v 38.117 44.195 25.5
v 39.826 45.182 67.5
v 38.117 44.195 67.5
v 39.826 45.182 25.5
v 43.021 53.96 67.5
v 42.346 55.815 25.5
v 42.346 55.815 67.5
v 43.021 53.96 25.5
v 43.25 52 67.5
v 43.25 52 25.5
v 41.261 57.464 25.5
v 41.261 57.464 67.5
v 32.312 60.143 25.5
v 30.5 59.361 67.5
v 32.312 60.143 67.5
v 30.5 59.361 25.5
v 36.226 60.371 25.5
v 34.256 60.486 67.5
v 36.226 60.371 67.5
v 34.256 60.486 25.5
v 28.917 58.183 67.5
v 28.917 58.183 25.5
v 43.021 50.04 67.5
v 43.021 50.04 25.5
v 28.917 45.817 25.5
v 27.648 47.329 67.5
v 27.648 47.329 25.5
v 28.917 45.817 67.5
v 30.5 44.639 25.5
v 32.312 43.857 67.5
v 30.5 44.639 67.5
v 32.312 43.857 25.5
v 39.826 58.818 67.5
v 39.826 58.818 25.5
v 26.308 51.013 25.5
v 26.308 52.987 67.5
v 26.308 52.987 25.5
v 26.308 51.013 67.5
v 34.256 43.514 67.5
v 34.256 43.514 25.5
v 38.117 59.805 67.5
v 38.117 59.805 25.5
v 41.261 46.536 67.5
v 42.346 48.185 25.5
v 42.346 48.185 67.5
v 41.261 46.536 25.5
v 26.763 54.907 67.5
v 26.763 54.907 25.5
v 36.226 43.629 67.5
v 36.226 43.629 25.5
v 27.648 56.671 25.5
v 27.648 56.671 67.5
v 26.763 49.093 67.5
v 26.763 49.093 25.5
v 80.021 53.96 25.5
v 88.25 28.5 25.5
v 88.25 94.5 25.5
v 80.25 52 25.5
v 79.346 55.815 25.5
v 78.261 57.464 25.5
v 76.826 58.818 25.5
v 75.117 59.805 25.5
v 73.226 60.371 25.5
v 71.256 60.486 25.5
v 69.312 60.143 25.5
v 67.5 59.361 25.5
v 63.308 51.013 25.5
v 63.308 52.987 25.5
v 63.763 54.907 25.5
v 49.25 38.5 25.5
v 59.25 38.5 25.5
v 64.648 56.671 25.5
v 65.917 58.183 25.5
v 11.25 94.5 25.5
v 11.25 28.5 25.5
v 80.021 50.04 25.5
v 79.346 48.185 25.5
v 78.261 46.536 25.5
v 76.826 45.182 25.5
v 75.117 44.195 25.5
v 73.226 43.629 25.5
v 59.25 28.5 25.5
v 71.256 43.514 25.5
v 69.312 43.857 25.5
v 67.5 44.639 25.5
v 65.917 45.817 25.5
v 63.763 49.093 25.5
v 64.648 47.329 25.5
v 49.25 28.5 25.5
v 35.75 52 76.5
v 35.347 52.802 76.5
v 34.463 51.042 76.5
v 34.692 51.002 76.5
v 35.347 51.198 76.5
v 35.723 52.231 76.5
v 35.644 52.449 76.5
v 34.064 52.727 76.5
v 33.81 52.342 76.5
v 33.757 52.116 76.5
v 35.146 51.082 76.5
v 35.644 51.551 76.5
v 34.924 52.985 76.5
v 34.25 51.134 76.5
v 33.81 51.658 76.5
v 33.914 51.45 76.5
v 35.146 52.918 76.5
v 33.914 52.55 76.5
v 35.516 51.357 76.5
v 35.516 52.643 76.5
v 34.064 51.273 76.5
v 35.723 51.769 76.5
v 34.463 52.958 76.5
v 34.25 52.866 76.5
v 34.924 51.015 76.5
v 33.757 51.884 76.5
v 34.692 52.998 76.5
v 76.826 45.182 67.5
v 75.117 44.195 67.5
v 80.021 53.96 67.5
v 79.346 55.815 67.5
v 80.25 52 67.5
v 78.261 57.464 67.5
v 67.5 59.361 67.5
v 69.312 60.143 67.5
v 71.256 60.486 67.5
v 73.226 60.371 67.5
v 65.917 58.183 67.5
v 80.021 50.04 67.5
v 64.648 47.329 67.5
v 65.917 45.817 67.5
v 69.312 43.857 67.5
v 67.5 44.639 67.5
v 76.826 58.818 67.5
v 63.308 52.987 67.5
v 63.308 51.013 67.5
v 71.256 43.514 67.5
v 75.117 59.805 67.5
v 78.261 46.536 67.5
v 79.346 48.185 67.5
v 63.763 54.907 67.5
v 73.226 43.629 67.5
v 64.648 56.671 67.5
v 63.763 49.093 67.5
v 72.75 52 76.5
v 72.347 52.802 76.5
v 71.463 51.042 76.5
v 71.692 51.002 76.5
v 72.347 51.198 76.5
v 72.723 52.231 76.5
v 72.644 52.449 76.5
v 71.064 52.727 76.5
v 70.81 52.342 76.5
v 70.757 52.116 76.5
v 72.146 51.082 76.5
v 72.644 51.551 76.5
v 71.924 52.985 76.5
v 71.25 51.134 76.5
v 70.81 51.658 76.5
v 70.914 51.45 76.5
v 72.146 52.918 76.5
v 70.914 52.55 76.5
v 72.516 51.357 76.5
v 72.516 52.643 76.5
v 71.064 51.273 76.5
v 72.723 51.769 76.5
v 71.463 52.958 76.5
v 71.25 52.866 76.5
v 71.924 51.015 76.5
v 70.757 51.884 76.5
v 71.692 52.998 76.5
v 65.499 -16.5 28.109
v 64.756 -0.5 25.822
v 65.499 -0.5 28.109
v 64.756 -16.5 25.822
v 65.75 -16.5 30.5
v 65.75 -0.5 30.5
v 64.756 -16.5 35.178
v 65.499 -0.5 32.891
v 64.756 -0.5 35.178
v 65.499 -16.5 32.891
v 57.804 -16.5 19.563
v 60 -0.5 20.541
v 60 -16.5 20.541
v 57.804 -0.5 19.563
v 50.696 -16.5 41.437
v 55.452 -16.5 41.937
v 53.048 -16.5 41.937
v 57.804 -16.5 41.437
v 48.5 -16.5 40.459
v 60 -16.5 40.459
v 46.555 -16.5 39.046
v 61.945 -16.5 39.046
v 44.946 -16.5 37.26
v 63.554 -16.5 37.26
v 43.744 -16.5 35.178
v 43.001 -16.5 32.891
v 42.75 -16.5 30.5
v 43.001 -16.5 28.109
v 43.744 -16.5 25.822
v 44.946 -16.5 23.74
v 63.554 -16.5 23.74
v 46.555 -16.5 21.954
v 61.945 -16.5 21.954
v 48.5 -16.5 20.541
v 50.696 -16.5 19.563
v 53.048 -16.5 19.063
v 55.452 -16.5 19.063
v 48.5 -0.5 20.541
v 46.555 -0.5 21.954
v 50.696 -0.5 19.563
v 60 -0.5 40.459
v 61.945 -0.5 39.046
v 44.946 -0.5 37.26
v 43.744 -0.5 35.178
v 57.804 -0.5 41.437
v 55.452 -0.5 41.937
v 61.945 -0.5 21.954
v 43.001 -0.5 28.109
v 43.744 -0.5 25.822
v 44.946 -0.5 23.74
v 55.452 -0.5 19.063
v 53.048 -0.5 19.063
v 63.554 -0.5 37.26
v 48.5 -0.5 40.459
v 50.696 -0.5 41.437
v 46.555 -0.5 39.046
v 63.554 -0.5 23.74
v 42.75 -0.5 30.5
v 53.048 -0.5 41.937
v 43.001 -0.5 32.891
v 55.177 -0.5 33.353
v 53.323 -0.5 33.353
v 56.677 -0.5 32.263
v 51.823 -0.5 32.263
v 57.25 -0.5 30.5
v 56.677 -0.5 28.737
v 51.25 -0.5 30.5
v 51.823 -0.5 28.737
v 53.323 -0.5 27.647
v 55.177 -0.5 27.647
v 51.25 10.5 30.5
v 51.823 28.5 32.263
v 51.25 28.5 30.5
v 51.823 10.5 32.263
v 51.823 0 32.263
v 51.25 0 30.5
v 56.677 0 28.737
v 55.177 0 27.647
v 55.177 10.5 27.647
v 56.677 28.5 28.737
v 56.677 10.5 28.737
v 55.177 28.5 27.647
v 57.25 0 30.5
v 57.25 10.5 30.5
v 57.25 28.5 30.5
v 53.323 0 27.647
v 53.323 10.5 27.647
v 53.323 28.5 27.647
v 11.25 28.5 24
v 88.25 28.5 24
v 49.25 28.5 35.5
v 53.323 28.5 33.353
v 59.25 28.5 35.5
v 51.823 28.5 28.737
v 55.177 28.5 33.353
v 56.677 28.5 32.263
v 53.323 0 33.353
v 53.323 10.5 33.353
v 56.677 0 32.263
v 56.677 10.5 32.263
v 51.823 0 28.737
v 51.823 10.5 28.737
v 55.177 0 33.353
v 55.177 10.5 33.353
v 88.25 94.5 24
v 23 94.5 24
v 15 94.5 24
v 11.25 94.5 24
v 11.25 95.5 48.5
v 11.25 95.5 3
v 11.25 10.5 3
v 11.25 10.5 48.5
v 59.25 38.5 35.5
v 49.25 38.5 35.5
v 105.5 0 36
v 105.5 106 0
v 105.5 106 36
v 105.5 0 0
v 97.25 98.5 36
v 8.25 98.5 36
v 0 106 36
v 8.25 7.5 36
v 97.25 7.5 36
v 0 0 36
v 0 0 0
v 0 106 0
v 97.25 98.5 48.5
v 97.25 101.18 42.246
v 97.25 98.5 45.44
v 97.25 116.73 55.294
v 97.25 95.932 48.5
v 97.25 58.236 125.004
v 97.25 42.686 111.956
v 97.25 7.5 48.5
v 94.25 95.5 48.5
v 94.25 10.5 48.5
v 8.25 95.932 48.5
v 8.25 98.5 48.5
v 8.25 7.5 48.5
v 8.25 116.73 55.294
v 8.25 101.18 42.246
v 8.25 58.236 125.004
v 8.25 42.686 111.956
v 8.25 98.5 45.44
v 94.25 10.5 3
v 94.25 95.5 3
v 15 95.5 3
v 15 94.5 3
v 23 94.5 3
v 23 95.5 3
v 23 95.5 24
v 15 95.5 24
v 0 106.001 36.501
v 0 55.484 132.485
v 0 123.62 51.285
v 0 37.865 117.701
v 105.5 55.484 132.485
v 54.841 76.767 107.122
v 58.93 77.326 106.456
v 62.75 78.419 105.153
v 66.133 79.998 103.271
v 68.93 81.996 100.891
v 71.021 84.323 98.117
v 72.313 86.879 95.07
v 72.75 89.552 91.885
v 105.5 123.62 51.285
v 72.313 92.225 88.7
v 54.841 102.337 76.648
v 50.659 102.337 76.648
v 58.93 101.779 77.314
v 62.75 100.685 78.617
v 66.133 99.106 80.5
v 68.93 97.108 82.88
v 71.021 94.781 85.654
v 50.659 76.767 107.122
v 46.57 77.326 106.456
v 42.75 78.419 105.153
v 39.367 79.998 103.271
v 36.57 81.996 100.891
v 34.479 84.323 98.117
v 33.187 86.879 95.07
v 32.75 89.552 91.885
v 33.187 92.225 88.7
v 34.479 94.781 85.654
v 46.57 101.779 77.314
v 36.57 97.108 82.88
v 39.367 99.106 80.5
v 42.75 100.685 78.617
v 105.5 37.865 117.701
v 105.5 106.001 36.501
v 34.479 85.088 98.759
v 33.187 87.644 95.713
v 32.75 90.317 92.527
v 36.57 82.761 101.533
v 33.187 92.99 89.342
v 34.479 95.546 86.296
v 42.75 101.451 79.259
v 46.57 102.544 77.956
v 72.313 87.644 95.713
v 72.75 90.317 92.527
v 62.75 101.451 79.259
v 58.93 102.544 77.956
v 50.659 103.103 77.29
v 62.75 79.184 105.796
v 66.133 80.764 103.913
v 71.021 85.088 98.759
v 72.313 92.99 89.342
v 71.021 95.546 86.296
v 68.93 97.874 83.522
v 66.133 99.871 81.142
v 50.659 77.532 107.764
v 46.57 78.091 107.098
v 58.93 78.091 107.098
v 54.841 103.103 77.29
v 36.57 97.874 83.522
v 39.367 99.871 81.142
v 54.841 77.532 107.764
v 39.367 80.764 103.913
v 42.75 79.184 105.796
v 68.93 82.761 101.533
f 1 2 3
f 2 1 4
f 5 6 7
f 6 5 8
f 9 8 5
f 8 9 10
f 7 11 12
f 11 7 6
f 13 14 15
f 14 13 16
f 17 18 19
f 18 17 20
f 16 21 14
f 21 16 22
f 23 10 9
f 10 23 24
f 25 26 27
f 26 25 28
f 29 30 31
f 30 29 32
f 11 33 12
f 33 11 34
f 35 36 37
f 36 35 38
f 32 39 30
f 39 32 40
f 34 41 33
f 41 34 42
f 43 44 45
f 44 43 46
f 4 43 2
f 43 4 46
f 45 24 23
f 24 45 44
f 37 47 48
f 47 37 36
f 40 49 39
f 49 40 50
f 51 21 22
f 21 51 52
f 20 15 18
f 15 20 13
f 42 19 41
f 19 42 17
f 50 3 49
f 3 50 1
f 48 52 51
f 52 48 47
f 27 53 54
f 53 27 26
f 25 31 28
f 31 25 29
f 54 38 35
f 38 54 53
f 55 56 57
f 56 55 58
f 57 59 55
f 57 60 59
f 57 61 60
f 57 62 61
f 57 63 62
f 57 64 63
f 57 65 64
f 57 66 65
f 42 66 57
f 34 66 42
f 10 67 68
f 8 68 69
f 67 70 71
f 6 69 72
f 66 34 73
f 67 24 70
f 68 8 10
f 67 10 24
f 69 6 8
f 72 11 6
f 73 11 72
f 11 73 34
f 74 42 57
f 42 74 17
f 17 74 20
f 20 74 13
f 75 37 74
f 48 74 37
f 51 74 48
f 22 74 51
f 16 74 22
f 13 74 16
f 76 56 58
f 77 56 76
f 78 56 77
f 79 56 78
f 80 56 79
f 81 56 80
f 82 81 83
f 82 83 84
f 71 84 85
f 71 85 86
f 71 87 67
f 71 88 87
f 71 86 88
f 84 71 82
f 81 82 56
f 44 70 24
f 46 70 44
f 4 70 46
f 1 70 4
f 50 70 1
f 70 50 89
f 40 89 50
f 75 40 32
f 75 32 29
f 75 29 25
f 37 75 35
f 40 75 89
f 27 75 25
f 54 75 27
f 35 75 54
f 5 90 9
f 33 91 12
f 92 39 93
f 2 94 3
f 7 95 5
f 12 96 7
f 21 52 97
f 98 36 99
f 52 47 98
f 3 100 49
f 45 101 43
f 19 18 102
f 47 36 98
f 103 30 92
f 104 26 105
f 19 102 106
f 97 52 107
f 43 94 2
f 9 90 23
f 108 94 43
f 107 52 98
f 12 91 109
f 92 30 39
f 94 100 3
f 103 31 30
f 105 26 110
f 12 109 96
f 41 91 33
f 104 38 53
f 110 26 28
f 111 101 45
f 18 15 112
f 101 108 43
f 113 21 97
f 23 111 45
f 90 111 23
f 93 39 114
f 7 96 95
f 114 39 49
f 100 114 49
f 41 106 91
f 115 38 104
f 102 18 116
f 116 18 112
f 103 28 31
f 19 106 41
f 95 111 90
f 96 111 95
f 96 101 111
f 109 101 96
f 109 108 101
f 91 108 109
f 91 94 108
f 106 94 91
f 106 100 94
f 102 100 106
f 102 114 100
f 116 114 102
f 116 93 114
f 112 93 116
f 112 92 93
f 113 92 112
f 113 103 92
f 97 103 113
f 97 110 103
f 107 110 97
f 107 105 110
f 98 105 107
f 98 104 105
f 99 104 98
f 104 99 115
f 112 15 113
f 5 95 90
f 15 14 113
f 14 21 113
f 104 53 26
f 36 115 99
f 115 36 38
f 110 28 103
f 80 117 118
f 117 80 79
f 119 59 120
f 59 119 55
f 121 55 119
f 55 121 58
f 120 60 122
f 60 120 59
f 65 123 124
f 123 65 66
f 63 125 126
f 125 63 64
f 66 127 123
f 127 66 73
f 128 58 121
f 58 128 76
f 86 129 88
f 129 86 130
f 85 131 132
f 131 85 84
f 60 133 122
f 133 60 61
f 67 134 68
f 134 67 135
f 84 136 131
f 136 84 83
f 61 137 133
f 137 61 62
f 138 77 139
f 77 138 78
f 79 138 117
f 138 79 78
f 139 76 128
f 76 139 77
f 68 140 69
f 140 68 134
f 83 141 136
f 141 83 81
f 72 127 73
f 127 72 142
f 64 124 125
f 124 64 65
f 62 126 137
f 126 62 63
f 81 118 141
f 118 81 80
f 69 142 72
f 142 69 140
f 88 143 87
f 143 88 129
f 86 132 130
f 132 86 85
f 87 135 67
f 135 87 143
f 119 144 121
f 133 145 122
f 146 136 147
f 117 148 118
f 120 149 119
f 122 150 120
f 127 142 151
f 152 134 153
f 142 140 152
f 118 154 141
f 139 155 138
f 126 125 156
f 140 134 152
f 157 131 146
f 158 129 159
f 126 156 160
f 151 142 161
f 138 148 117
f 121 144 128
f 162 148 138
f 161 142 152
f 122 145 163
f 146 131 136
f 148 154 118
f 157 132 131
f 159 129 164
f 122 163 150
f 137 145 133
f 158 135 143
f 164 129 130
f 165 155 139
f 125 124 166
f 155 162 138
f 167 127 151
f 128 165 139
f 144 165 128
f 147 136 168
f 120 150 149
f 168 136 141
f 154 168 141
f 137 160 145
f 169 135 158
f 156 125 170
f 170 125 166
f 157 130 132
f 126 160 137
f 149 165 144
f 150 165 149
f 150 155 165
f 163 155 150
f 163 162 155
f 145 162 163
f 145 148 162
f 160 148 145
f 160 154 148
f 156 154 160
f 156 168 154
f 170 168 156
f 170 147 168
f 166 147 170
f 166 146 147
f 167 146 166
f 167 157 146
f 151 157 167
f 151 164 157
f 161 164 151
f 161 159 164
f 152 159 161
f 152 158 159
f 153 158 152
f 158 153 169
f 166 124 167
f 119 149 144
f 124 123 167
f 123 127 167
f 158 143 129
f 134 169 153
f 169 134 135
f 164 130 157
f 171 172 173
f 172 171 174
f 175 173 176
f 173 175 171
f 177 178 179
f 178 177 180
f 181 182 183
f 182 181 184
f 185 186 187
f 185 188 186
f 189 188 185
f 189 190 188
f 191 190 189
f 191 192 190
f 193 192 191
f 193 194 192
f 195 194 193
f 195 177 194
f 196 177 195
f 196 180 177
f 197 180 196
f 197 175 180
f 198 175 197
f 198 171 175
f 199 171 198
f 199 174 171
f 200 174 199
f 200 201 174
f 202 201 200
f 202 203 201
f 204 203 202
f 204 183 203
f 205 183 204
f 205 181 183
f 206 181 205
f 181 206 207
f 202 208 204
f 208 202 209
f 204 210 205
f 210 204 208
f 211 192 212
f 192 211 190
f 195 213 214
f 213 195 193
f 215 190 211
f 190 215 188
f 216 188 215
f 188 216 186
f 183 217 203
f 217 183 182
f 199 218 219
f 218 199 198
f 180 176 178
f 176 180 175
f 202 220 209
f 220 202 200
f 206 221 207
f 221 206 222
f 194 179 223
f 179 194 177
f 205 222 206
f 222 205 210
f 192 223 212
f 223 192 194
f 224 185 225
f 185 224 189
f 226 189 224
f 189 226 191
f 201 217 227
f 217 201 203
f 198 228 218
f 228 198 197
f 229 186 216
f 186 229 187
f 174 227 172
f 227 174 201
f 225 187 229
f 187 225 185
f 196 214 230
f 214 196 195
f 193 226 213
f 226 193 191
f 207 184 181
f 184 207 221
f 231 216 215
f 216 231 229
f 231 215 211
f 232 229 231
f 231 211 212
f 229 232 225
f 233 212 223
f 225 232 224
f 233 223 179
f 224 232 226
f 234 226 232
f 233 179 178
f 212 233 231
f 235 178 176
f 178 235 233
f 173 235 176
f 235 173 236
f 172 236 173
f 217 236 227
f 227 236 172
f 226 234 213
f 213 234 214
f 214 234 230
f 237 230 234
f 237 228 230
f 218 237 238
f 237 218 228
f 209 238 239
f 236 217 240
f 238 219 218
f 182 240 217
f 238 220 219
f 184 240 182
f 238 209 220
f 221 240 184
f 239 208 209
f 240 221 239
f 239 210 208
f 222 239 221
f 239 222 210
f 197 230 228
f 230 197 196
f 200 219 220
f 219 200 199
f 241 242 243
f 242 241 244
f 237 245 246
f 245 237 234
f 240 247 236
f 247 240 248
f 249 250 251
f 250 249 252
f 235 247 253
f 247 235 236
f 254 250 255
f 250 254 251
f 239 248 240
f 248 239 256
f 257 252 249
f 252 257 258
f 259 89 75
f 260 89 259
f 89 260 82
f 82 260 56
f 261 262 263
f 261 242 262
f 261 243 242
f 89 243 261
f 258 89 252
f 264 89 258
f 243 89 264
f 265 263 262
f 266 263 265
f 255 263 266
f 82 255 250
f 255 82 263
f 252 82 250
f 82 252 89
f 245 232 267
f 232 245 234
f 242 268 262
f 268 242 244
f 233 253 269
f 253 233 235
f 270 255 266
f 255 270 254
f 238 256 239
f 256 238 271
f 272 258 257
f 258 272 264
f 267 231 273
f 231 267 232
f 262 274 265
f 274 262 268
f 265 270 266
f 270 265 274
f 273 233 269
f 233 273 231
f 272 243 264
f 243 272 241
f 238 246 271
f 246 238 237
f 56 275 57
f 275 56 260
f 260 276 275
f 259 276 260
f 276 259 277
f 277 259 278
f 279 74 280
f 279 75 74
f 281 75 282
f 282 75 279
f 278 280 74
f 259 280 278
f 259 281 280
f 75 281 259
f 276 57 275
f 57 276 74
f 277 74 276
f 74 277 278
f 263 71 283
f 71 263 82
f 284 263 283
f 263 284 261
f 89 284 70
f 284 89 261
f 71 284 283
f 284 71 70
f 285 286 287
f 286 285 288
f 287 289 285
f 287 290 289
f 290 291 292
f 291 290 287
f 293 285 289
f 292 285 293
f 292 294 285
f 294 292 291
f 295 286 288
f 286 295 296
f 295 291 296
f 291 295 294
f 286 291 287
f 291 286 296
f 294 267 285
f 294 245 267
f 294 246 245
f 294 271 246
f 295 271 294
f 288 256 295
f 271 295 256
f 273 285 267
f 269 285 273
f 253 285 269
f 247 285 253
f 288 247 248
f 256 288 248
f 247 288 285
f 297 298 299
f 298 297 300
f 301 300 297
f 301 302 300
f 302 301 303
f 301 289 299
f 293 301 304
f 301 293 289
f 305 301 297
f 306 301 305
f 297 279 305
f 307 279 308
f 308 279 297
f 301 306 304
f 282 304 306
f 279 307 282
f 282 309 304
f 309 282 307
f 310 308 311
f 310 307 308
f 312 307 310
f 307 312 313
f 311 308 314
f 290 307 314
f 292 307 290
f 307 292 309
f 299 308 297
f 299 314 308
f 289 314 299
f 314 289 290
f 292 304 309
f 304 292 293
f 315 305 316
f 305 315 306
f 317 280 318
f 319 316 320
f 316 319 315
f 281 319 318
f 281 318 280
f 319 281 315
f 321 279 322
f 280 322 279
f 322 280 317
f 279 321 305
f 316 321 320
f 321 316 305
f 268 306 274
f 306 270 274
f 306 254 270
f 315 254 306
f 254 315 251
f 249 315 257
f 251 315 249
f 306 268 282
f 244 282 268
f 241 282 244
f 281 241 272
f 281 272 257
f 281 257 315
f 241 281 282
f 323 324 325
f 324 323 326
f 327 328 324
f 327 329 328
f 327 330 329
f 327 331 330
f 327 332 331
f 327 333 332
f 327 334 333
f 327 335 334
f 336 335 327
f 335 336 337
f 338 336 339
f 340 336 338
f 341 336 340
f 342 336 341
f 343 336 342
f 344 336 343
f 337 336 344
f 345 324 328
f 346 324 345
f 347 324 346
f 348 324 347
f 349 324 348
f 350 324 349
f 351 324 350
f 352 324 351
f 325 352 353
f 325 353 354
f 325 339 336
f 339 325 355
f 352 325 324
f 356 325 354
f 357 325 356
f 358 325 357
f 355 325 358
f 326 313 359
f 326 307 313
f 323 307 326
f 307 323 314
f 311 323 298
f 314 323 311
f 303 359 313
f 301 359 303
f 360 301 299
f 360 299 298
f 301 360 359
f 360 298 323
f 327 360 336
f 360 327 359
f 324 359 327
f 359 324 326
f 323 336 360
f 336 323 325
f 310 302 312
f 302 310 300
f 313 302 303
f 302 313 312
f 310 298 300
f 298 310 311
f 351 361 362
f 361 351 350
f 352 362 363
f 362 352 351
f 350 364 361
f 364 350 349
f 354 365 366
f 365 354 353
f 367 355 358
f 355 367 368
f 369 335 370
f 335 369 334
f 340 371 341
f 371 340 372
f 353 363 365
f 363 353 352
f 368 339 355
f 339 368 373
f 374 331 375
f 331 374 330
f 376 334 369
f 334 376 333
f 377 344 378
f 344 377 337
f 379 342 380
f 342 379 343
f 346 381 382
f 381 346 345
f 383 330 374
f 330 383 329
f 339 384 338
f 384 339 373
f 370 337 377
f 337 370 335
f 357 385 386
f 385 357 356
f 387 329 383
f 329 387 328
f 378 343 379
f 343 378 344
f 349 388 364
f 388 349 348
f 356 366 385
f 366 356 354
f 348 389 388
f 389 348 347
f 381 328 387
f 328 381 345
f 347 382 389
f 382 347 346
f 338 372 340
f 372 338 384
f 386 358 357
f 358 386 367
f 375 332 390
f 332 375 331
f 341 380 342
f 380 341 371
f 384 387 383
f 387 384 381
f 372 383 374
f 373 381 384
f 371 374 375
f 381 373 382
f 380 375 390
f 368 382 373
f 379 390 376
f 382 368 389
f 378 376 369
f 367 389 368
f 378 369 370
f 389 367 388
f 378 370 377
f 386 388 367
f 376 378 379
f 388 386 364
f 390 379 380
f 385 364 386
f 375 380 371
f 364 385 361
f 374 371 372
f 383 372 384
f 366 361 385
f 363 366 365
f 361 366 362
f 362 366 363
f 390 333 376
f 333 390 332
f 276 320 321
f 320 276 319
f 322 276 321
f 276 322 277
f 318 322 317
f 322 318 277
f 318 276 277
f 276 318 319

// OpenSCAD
box1X=105.5;
box1Y=106;
box1Z=36;
box1BaseH=3;

box2X=89;
box2Y=91;
box2Z=45.5;

box3X=83;
box3Y=85;
box3Z=50;

lidX=box1X;
lidY=box1Y;
lidZ=23;
lidDepth=20.3;
lidStampR=20;
lidHingeAngle=50;
lidAnimZ=0;

preampBoardX=77;
preampBoardY=66;
preampBoardZ=1.5;
preampTubeR=17/2;
preampTubeH=42;
preampTubeBaseH=10;
preampTubeTipH=51;
preampTubeC=[200/255,200/255,200/255];
preampKnobR=11.5;
preampKnobH=16;
preampAxleH=29;

brown=[139/255,69/255,19/255];
gold=[255/255,215/255,0/255];
Blue=[0/255,0/255,200/255];

module box(){
	color(brown)
	difference(){
		union(){
			cube([box1X,box1Y,box1Z]);
			translate([box1X/2-box2X/2,box1Y/2-box2Y/2,box1BaseH]) cube([box2X,box2Y,box2Z]);
		}
		translate([box1X/2-box3X/2,box1Y/2-box3Y/2,3]) cube([box3X,box3Y,box3Z]);
		// star the next line to see inside the box
		*translate([-.5,-.5,-.5]) cube([box1X+1,box1Y*.85+1,box1Z/2+1]);
	}
}

//lid
module lid(){
	color(gold) translate([(box1X/2),(box1Y/2),lidZ+.0001]) cylinder(h=1,r1=lidStampR,r2=lidStampR);
	color(brown) translate([0,0,0])
		difference(){
			translate([0,0,.001]) cube([lidX,lidY,lidZ]);
			translate([box1X/2-box2X/2,box1Y/2-box2Y/2,0]) cube([box2X,box2Y,lidDepth]);
	}
}

module tube () {
	union(){
		color(preampTubeC,.5) translate([0,0,preampTubeBaseH])cylinder(h=42-preampTubeBaseH,r1=preampTubeR,r2=preampTubeR);
		color([1,1,1])cylinder(h=preampTubeBaseH,r=preampTubeR);
		translate([0,0,preampTubeH]) color(preampTubeC) cylinder(h=preampTubeTipH-preampTubeH,r1=preampTubeR,r2=1);
	}
}

translate([(box1X-box3X)/2,((box1Y-box3Y)/2)+(box3Y-preampBoardY)-1,box1BaseH+21])
union() {
	//board
	cube([preampBoardX,preampBoardY,preampBoardZ]);
	//tubes
	translate([15+preampTubeR,15+preampTubeR,preampBoardZ]) tube();
	translate([52+preampTubeR,15+preampTubeR,preampBoardZ]) tube();
	//Volume Knob Base
	translate([38,0,preampBoardZ]) color([0,1,0]) cube([10,10,10]);
	//volume knob
	translate([43,-(preampKnobH+preampAxleH),preampBoardZ+5]) rotate([270,0,0])
	union(){
		difference() {
			color([50/255,50/255,50/255]) cylinder(h=preampKnobH,r=preampKnobR);
			translate([0,0,-.001]) cylinder(h=1,r=(preampKnobR/100)*60);
		}
		color([255/255,255/255,255/255])cylinder(h=1,r=(preampKnobR/100)*60);
		//knob axle
		translate([0,0,preampKnobH]) color([1,1,1])cylinder(h=preampAxleH,r=3);
	}
}
//draft base 
translate([15,box1Y-((box1Y-box3Y)/2)-1,box1BaseH]) color([0,0,0])cube([8,1,21]);
//enclosure	
box();
translate([box1X,box1Y,(box1Z)+lidAnimZ+.5]) rotate([lidHingeAngle,0,180]) lid();
